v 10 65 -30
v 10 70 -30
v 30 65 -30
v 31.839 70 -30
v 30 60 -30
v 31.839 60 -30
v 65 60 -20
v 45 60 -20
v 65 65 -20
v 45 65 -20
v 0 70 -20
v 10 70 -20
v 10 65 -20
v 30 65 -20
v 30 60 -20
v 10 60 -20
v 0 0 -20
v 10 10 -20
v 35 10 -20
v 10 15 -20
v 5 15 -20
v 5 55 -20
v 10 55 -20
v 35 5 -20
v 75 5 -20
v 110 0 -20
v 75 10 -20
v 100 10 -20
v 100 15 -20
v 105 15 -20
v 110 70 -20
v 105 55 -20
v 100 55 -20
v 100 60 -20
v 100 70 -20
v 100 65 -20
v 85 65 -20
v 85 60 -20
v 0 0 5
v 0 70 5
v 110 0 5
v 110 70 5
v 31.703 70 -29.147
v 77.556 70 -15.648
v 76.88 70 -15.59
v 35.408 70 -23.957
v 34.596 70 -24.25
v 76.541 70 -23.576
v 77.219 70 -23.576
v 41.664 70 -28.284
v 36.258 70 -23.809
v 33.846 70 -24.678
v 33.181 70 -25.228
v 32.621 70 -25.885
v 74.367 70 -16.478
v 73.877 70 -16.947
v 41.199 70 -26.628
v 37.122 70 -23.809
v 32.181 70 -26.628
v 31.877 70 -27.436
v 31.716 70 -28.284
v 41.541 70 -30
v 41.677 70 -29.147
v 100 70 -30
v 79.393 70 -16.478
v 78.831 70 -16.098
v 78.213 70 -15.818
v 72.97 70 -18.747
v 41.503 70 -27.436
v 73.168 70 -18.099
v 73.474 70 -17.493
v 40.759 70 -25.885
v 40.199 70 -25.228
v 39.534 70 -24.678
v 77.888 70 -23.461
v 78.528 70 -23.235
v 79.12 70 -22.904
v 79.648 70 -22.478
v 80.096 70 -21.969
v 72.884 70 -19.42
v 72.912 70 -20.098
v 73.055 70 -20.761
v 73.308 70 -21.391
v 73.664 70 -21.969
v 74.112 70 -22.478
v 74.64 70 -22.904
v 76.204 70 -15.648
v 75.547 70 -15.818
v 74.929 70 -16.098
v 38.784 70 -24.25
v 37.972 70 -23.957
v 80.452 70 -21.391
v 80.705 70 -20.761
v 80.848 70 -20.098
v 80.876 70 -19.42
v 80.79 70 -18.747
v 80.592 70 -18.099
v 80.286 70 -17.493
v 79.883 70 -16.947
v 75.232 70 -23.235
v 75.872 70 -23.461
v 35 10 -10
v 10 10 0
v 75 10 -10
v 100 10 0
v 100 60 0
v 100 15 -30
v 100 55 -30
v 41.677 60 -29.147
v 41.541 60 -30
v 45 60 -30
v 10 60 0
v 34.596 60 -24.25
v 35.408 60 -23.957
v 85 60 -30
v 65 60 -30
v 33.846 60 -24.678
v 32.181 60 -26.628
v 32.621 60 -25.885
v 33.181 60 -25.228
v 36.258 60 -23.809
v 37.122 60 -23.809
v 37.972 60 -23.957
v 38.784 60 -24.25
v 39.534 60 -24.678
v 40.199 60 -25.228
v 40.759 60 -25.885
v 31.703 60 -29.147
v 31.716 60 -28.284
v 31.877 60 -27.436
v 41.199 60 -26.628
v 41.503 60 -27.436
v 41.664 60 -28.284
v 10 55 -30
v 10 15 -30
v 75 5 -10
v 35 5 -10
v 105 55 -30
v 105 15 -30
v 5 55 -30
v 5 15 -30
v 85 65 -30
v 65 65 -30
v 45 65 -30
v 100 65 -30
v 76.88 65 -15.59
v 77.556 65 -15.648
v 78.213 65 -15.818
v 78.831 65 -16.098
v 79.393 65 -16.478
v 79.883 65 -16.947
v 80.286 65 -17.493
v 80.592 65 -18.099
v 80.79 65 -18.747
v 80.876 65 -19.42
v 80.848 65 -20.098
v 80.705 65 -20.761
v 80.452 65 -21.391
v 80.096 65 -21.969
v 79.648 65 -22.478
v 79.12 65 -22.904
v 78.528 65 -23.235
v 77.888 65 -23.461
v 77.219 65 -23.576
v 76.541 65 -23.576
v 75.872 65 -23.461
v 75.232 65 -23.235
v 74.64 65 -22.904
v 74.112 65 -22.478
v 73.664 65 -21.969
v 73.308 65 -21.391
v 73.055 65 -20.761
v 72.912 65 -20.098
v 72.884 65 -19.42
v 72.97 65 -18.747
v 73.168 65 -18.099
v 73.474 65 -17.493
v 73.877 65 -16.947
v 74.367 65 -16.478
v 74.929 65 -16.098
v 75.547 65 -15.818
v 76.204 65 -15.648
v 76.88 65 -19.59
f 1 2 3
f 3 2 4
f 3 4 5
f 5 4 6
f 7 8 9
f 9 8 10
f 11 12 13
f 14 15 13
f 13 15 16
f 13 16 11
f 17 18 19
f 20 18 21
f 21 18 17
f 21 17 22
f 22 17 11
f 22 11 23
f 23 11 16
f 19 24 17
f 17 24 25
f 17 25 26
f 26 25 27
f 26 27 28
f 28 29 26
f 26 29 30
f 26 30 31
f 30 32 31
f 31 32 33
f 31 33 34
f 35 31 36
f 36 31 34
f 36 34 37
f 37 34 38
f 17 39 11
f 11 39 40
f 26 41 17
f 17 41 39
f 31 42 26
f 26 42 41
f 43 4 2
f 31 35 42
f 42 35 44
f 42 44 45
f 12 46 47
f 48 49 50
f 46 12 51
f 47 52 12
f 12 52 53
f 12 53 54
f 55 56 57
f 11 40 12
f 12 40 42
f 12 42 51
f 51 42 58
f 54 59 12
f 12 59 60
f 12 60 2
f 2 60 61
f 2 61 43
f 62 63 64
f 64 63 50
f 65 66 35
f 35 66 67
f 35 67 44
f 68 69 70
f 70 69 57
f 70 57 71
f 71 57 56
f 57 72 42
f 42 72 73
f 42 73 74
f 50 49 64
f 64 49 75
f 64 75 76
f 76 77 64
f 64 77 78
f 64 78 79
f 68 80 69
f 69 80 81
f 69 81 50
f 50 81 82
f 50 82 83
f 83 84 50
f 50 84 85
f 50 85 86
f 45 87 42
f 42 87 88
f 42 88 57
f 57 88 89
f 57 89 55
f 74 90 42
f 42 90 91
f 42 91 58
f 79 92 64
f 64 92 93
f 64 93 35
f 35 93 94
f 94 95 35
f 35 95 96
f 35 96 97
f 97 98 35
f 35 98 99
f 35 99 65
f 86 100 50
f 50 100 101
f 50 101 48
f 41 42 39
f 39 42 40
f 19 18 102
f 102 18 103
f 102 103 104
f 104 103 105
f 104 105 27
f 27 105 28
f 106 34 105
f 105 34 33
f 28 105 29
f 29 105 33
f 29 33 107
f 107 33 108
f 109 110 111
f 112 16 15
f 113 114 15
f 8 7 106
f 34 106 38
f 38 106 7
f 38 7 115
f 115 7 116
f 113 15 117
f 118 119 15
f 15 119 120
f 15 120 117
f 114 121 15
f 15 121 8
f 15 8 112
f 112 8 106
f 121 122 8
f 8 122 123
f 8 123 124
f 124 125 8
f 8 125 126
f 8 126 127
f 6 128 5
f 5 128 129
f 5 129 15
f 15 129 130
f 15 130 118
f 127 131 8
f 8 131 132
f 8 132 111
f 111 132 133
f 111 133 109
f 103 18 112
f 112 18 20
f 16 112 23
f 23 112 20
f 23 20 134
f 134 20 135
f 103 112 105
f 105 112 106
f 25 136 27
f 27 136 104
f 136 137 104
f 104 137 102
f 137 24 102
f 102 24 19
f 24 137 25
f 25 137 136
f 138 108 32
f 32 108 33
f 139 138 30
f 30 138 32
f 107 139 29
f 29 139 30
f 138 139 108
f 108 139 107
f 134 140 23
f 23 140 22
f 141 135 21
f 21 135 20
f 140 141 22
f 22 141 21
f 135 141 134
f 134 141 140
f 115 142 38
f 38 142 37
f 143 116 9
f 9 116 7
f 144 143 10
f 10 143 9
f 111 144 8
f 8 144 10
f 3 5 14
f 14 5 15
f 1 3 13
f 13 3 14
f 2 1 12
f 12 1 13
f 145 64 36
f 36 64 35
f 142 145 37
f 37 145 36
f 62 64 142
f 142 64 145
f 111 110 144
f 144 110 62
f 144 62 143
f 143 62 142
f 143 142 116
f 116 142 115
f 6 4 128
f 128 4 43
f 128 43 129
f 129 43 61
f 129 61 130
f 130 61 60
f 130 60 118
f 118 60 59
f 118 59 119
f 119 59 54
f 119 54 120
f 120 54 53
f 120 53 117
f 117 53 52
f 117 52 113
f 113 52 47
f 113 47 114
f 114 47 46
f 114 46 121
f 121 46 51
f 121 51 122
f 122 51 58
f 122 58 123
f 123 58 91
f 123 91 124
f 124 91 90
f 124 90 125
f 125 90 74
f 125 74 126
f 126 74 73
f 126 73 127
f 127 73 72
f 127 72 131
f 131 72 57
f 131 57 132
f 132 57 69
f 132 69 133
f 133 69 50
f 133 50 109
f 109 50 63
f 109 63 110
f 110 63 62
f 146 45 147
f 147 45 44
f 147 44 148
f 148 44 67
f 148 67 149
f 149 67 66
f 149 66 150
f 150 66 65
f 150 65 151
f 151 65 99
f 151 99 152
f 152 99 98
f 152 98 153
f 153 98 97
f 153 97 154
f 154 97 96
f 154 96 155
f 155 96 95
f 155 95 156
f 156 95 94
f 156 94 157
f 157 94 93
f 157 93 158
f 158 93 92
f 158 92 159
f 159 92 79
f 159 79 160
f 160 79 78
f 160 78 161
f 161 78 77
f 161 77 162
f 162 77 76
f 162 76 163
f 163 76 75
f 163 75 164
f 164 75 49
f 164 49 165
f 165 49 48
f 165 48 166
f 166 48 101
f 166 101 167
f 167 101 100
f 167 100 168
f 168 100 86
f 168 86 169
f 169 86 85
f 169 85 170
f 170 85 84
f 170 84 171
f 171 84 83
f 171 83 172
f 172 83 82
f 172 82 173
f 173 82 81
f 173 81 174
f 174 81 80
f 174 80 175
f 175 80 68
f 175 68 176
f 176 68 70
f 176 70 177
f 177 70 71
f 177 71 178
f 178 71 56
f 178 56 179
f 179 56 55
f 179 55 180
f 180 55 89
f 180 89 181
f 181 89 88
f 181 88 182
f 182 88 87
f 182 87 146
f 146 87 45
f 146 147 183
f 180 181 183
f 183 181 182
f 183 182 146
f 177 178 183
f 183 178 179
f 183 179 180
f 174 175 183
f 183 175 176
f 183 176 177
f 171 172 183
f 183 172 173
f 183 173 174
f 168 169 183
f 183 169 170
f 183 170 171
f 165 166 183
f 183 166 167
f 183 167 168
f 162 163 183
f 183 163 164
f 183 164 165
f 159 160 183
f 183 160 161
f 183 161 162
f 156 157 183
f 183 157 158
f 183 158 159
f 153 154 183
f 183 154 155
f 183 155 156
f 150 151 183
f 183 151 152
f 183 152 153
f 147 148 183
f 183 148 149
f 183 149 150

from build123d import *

# Parameters (mm, degrees)
SKETCH1_W           = 110
SKETCH1_H           = 70
BOSS_EXTRUDE1_DEPTH = 5
SKETCH2_W           = 90
SKETCH2_H           = 10
BOSS_EXTRUDE2_DEPTH = 20
SKETCH4_W           = 40
SKETCH4_H           = 10
CUT_EXTRUDE1_DEPTH  = 5
SKETCH5_W           = 5
SKETCH5_H           = 40
BOSS_EXTRUDE4_DEPTH = 10
BOSS_EXTRUDE5_DEPTH = 10
SKETCH7_R           = 5
CUT_EXTRUDE2_DEPTH  = 10
SKETCH8_R           = 4
CUT_EXTRUDE3_DEPTH  = 5


with BuildPart() as part:
    # Sketch1 → Boss-Extrude1 (new body)
    with BuildSketch(Plane.XY):
        with Locations((55, 35)):
            Rectangle(SKETCH1_W, SKETCH1_H)
    extrude(amount=BOSS_EXTRUDE1_DEPTH)

    # Sketch2 → Boss-Extrude2 (add)
    with BuildSketch(Plane(origin=(0, 0, 0), x_dir=(-1, 0, 0), z_dir=(0, 0, -1))):
        with Locations((-55, 65)):
            Rectangle(SKETCH2_W, SKETCH2_H)
        Polygon((-100, 70), (-110, 70), (-110, 0), (-100, 0), (-100, 10), (-100, 60), align=None)
        Polygon((0, 70), (-10, 70), (-10, 60), (-10, 10), (-10, 0), (0, 0), align=None)
        with Locations((-55, 5)):
            Rectangle(SKETCH2_W, SKETCH2_H)
    extrude(amount=BOSS_EXTRUDE2_DEPTH)

    # Sketch4 → Cut-Extrude1 (cut)
    with BuildSketch(Plane(origin=(0, 10, 0), x_dir=(1, 0, 0), z_dir=(0, 1, 0))):
        with Locations((55, 15)):
            Rectangle(SKETCH4_W, SKETCH4_H)
    extrude(amount=-CUT_EXTRUDE1_DEPTH, mode=Mode.SUBTRACT)

    # Sketch5 → Boss-Extrude4 (add)
    with BuildSketch(Plane(origin=(0, 0, -20), x_dir=(-1, 0, 0), z_dir=(0, 0, -1))):
        with Locations((-102.5, 35)):
            Rectangle(SKETCH5_W, SKETCH5_H)
        with Locations((-7.5, 35)):
            Rectangle(SKETCH5_W, SKETCH5_H)
    extrude(amount=BOSS_EXTRUDE4_DEPTH)

    # Sketch6 → Boss-Extrude5 (add)
    with BuildSketch(Plane(origin=(0, 0, -20), x_dir=(-1, 0, 0), z_dir=(0, 0, -1))):
        Polygon((-45, 60), (-30, 60), (-30, 65), (-10, 65), (-10, 70), (-100, 70), (-100, 65), (-85, 65), (-85, 60), (-65, 60), (-65, 65), (-45, 65), align=None)
    extrude(amount=BOSS_EXTRUDE5_DEPTH)

    # Sketch7 → Cut-Extrude2 (cut)
    with BuildSketch(Plane(origin=(0, 70, 0), x_dir=(1, 0, 0), z_dir=(0, 1, 0))):
        with Locations((36.69, 28.79)):
            Circle(SKETCH7_R)
    extrude(amount=-CUT_EXTRUDE2_DEPTH, mode=Mode.SUBTRACT)

    # Sketch8 → Cut-Extrude3 (cut)
    with BuildSketch(Plane(origin=(0, 70, 0), x_dir=(1, 0, 0), z_dir=(0, 1, 0))):
        with Locations(Location((76.88, 19.59, 0), (0, 0, 270))):
            Circle(SKETCH8_R)
    extrude(amount=-CUT_EXTRUDE3_DEPTH, mode=Mode.SUBTRACT)


solid = part.part
